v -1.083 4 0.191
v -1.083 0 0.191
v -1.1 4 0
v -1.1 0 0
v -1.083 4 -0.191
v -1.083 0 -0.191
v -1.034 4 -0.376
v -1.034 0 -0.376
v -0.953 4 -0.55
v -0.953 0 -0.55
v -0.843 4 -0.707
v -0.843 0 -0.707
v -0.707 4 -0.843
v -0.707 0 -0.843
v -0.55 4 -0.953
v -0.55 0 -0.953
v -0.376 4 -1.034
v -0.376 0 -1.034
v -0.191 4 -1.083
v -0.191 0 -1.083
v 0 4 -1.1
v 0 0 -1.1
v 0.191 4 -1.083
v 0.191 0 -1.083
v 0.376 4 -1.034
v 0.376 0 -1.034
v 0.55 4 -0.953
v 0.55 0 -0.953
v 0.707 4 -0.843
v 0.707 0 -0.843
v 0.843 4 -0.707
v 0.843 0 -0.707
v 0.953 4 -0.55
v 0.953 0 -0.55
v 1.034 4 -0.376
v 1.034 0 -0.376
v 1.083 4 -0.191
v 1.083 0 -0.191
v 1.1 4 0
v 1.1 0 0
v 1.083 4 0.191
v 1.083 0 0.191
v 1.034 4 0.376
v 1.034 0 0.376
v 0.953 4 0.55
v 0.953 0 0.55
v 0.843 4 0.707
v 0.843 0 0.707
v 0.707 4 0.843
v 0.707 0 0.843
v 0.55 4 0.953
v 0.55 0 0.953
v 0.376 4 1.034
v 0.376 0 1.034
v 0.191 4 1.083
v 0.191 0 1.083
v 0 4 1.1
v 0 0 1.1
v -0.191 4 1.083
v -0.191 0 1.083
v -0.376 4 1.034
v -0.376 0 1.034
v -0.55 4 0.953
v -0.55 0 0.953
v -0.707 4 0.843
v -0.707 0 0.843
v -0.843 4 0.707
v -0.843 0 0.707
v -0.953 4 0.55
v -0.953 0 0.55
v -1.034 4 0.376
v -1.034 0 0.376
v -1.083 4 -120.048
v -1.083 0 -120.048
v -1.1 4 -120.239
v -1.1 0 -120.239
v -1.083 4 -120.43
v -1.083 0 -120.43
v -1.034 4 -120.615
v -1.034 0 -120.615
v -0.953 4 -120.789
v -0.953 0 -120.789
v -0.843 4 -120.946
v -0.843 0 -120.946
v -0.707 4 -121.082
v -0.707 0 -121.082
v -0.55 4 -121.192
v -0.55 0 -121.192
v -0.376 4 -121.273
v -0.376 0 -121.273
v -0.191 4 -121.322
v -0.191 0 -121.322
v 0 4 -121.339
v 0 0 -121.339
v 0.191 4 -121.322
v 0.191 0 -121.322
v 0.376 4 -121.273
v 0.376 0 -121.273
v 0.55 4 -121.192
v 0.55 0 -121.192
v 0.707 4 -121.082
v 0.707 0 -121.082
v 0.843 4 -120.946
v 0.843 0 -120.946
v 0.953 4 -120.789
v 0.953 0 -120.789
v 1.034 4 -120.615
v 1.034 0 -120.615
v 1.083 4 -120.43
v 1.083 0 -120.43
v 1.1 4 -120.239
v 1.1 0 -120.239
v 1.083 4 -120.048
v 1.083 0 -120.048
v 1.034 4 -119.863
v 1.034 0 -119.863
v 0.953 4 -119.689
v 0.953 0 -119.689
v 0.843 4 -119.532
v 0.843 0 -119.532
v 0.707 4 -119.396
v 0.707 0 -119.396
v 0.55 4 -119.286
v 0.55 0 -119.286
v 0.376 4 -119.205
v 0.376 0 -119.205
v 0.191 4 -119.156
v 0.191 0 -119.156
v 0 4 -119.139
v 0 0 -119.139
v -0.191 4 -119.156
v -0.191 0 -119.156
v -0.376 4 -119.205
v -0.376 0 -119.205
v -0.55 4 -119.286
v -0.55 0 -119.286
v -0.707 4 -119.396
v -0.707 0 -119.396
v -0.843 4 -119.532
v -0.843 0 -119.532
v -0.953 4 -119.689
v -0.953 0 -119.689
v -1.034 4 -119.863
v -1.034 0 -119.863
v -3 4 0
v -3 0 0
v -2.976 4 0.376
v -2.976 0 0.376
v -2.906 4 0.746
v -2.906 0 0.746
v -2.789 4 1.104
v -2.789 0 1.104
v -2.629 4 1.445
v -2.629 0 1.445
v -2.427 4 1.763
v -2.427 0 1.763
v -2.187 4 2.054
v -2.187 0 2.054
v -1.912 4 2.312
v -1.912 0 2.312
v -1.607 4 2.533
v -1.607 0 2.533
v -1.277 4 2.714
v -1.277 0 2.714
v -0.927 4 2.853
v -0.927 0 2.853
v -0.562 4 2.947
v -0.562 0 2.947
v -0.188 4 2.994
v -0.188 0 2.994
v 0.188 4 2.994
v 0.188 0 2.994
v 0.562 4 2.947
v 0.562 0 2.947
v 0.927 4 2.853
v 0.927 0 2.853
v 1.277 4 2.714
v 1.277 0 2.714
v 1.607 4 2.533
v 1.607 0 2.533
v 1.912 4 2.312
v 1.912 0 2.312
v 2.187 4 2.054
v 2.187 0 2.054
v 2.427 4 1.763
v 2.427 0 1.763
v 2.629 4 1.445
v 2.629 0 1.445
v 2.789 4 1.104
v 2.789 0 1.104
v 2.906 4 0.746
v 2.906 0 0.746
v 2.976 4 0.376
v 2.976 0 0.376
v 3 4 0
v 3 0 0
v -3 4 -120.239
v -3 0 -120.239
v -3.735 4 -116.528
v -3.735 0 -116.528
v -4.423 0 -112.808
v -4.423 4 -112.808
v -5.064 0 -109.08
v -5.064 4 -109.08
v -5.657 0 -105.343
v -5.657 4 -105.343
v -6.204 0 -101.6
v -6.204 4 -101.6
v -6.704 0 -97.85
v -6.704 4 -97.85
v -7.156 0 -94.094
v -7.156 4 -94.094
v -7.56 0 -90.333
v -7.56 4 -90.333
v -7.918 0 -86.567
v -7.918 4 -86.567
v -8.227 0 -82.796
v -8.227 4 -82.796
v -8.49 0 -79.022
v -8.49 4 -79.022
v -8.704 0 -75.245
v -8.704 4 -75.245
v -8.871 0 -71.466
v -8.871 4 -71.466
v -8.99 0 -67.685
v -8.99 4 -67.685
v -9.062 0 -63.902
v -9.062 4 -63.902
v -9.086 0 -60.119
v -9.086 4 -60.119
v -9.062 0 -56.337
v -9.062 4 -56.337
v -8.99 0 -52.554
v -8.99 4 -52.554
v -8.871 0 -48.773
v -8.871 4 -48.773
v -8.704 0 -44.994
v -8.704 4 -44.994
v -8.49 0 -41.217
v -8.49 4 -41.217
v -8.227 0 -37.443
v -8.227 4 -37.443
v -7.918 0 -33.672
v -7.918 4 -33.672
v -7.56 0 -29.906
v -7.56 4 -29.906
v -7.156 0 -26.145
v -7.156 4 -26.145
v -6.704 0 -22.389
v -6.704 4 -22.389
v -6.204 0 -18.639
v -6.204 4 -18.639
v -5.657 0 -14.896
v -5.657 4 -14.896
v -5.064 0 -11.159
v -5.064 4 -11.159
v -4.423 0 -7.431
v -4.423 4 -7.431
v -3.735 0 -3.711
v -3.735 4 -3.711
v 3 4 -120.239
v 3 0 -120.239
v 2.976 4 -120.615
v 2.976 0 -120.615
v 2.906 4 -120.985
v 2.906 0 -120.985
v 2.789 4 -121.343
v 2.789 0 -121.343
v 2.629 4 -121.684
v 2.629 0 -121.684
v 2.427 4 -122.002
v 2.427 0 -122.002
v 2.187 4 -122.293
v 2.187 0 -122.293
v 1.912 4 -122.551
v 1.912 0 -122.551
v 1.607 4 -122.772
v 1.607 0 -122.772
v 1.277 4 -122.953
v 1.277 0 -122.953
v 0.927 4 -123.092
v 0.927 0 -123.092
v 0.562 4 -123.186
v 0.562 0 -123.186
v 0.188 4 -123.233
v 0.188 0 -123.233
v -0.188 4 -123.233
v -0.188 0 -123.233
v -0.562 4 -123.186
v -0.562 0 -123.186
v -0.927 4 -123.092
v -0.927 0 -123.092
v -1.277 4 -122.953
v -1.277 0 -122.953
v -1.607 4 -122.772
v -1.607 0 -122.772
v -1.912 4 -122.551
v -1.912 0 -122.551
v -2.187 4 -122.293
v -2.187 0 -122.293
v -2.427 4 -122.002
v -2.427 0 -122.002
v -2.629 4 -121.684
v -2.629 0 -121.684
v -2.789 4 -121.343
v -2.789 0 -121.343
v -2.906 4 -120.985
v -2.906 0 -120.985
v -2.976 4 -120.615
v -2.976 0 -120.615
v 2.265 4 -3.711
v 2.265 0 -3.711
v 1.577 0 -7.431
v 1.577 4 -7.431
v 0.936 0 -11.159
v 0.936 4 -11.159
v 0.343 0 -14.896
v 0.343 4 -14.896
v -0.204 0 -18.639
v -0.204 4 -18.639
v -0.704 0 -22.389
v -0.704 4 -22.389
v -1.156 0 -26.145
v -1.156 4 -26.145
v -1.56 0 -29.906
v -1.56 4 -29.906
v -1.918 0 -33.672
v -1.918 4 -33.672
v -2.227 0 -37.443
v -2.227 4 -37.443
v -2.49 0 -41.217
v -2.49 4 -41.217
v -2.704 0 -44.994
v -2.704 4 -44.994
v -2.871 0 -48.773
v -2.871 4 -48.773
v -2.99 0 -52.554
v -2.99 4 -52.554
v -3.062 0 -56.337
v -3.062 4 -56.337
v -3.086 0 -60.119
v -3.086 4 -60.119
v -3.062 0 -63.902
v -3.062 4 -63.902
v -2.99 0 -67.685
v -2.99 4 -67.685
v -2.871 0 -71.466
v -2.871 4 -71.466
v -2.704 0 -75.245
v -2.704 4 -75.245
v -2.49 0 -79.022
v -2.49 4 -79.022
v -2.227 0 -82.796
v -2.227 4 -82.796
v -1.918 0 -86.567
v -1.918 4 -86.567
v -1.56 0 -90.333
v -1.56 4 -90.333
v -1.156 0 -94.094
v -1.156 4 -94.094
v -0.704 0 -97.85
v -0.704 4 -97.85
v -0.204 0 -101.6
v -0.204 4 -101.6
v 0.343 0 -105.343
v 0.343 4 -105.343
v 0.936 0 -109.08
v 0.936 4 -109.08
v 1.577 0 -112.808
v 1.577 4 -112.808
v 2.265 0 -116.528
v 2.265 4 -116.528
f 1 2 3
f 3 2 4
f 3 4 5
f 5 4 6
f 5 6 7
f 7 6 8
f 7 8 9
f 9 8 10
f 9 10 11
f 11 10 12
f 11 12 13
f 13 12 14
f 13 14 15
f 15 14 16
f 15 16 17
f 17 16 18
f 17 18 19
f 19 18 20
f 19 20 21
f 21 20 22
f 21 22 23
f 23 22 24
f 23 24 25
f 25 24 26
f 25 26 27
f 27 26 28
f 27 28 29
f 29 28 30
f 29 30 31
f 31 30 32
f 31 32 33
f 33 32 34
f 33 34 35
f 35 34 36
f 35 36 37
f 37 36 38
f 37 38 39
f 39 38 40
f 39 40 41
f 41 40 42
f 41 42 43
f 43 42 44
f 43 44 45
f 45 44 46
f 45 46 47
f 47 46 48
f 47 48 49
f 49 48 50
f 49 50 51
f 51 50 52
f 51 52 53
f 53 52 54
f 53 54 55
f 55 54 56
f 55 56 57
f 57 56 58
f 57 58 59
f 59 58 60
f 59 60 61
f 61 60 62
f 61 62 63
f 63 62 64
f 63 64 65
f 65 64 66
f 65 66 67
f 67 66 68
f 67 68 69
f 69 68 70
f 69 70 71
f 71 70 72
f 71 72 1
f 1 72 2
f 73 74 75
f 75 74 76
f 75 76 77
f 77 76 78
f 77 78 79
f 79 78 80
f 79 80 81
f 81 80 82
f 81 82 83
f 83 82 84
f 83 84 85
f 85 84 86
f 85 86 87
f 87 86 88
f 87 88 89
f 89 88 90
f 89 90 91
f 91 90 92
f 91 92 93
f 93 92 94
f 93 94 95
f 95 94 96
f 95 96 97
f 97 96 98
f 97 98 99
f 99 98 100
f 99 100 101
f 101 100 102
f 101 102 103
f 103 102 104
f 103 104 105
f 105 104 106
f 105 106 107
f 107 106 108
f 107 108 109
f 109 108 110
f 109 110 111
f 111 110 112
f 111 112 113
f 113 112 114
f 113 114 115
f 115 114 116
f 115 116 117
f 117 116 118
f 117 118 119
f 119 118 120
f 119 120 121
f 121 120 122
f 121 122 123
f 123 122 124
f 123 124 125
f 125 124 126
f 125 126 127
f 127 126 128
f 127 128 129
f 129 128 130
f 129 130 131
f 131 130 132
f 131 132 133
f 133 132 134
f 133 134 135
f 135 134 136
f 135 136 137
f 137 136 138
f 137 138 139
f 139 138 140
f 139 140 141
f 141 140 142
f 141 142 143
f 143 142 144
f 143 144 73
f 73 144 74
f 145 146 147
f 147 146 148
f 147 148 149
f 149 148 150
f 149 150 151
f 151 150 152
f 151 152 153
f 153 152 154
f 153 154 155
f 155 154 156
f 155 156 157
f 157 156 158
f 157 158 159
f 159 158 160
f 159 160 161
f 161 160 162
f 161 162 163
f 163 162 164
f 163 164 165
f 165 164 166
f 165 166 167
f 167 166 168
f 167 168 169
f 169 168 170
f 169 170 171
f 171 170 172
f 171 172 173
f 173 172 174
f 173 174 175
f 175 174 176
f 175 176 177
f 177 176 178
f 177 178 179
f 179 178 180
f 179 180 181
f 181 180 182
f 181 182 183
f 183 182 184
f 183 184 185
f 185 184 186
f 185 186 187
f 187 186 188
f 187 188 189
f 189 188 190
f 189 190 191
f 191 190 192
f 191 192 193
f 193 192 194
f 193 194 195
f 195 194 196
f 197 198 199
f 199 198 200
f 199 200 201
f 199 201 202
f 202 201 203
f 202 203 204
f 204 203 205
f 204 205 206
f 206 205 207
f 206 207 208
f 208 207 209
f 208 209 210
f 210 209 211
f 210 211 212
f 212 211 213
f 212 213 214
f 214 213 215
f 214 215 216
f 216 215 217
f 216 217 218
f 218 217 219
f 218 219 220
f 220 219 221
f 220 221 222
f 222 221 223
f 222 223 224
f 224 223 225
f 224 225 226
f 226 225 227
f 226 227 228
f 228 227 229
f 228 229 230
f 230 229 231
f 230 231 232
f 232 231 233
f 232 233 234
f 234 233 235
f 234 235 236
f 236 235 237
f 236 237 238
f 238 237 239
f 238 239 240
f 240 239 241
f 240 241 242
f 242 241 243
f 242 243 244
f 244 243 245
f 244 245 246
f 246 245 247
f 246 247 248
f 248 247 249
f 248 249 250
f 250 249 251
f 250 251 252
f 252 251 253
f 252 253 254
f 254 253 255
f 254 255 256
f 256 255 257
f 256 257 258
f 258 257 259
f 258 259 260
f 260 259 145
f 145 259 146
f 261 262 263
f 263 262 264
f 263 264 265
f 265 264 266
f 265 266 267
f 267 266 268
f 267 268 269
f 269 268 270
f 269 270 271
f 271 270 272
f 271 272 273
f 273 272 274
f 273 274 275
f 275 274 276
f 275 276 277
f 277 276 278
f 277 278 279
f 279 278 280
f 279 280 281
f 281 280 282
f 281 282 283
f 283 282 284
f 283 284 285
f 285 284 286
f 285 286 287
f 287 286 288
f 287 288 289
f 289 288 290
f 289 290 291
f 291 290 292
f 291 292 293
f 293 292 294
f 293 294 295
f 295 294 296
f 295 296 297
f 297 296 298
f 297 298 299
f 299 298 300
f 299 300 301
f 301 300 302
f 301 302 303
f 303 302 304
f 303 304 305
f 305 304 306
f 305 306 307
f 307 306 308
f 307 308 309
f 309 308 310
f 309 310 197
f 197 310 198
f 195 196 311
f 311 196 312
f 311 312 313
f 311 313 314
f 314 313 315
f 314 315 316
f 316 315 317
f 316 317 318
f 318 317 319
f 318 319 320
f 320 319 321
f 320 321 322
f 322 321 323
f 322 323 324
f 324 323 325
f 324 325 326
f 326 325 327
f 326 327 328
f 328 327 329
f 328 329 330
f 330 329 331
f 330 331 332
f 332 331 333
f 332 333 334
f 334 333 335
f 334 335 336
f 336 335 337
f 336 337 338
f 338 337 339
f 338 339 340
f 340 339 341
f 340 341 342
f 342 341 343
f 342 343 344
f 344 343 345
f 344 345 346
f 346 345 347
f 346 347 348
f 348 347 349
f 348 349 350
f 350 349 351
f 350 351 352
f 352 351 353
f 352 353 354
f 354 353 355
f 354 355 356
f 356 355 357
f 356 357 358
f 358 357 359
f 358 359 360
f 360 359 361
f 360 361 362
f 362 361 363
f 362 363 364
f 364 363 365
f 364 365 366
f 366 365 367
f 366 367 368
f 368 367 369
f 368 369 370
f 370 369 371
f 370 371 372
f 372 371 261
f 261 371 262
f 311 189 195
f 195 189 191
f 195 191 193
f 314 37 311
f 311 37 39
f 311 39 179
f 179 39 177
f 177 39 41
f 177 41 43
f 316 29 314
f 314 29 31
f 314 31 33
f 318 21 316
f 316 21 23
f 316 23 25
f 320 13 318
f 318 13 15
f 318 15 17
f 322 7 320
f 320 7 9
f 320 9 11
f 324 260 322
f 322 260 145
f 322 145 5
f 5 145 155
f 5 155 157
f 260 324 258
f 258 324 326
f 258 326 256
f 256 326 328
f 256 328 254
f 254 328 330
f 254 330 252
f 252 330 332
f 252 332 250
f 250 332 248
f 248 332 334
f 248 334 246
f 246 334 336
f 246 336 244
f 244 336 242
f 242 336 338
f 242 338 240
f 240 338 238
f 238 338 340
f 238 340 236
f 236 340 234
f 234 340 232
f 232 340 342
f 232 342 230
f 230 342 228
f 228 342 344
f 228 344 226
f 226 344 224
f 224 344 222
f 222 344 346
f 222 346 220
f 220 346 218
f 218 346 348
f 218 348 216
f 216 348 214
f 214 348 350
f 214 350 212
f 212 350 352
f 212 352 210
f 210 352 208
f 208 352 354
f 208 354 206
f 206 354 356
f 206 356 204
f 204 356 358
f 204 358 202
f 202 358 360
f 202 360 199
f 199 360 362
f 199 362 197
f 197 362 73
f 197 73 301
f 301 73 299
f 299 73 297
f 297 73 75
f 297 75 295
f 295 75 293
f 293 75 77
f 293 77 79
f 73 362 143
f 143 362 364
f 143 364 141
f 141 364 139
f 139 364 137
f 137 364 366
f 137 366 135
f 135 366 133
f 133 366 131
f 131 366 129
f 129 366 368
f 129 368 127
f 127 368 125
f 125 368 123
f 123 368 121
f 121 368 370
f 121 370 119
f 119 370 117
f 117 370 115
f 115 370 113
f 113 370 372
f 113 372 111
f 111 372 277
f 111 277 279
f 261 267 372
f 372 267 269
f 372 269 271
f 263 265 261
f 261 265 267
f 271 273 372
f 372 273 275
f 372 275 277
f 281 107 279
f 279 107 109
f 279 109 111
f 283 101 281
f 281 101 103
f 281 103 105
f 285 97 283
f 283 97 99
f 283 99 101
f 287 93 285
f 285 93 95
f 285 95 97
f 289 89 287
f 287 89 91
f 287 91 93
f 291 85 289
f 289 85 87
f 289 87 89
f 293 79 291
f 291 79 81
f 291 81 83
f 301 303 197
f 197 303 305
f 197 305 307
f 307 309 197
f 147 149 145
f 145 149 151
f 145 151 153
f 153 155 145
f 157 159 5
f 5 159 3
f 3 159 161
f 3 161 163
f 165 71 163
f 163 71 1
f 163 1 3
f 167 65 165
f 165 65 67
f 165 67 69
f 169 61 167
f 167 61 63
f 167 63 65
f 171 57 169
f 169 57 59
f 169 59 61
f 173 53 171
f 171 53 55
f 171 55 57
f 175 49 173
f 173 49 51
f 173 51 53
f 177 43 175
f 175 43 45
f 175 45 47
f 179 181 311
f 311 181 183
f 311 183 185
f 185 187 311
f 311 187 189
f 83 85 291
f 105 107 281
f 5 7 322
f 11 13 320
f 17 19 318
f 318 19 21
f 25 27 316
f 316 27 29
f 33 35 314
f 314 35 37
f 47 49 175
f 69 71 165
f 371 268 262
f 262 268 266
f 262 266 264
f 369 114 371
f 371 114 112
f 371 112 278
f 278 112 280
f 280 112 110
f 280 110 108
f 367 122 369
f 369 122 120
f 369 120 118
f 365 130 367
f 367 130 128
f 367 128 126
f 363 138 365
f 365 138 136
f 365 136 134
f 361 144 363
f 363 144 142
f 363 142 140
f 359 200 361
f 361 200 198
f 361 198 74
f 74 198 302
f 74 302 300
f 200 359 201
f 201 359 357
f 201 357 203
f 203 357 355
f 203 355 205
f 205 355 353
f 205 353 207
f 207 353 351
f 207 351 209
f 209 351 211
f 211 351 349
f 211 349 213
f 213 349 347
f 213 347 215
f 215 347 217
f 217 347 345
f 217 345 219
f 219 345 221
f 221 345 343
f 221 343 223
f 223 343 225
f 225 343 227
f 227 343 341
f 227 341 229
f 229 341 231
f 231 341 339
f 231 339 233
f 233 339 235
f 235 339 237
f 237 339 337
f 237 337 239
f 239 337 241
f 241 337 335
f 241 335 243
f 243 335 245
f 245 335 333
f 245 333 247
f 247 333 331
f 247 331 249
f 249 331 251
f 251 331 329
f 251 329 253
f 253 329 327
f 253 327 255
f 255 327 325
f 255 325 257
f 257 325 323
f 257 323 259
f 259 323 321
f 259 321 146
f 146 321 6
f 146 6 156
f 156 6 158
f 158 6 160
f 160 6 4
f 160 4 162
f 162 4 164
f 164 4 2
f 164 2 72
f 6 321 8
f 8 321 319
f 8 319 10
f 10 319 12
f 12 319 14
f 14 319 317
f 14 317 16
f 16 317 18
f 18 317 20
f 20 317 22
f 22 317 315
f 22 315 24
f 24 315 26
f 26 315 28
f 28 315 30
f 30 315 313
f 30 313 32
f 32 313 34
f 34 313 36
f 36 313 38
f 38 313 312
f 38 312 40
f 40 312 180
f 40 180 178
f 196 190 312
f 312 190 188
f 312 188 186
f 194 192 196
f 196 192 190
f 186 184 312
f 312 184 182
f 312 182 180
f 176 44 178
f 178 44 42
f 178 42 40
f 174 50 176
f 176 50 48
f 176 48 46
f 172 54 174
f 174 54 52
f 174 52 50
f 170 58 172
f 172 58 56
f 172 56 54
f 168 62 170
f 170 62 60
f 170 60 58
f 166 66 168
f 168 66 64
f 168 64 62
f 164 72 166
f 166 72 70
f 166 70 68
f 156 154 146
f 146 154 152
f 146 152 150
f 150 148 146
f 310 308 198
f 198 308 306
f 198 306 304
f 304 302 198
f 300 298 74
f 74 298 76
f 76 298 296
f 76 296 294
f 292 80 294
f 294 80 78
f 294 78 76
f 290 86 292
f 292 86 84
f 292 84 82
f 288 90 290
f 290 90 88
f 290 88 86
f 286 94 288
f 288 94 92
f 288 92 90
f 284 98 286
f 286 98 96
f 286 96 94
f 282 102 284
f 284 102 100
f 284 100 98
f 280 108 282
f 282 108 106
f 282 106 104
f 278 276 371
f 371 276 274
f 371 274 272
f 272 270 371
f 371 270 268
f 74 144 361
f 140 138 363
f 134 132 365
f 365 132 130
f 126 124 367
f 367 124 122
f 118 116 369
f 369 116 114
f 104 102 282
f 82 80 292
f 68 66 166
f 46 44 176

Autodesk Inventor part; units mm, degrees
ref_plane "YZ Plane" through (0, 0, 0) normal (1, 0, 0) x (0, 1, 0)
ref_plane "XZ Plane" through (0, 0, 0) normal (0, 1, 0) x (-1, 0, 0)
ref_plane "XY Plane" through (0, 0, 0) normal (0, 0, 1) x (1, 0, 0)
sketch "Sketch1" plane through (0, 0, 0) normal (0, 1, 0) x (-1, 0, 0)
  line L0 (0, 0) -> (0, -120.239) construction
  line L1 (3, 0) -> (3, -120.239)
  line L2 (-3, -120.239) -> (-3, 0)
  arc A0 (3, 0) -> (-3, 0) centre (0, 0) ccw
  arc A1 (-3, -120.239) -> (3, -120.239) centre (0, -120.239) ccw
  circle A2 centre (0, 0) radius 1.1
  circle A3 centre (0, -120.239) radius 1.1
  arc A4 (-3, -120.239) -> (-3, 0) centre (-296.9144, -60.1195) ccw
  arc A5 (3, -120.239) -> (3, 0) centre (-290.9144, -60.1195) ccw
  point P0 (0, -60.1195)
  dimension "d0" = 2.2
  dimension "d1" = 2.2
  dimension "d2" = 6
  dimension "d3" = 120.239
  dimension "d14" = 300
  dimension "d15" = 300
extrude "Extrusion1" add sketch "Sketch1" along normal blind 4 contours A5 L1 A4 | L1 A4 A0 | A1 A4 L1
